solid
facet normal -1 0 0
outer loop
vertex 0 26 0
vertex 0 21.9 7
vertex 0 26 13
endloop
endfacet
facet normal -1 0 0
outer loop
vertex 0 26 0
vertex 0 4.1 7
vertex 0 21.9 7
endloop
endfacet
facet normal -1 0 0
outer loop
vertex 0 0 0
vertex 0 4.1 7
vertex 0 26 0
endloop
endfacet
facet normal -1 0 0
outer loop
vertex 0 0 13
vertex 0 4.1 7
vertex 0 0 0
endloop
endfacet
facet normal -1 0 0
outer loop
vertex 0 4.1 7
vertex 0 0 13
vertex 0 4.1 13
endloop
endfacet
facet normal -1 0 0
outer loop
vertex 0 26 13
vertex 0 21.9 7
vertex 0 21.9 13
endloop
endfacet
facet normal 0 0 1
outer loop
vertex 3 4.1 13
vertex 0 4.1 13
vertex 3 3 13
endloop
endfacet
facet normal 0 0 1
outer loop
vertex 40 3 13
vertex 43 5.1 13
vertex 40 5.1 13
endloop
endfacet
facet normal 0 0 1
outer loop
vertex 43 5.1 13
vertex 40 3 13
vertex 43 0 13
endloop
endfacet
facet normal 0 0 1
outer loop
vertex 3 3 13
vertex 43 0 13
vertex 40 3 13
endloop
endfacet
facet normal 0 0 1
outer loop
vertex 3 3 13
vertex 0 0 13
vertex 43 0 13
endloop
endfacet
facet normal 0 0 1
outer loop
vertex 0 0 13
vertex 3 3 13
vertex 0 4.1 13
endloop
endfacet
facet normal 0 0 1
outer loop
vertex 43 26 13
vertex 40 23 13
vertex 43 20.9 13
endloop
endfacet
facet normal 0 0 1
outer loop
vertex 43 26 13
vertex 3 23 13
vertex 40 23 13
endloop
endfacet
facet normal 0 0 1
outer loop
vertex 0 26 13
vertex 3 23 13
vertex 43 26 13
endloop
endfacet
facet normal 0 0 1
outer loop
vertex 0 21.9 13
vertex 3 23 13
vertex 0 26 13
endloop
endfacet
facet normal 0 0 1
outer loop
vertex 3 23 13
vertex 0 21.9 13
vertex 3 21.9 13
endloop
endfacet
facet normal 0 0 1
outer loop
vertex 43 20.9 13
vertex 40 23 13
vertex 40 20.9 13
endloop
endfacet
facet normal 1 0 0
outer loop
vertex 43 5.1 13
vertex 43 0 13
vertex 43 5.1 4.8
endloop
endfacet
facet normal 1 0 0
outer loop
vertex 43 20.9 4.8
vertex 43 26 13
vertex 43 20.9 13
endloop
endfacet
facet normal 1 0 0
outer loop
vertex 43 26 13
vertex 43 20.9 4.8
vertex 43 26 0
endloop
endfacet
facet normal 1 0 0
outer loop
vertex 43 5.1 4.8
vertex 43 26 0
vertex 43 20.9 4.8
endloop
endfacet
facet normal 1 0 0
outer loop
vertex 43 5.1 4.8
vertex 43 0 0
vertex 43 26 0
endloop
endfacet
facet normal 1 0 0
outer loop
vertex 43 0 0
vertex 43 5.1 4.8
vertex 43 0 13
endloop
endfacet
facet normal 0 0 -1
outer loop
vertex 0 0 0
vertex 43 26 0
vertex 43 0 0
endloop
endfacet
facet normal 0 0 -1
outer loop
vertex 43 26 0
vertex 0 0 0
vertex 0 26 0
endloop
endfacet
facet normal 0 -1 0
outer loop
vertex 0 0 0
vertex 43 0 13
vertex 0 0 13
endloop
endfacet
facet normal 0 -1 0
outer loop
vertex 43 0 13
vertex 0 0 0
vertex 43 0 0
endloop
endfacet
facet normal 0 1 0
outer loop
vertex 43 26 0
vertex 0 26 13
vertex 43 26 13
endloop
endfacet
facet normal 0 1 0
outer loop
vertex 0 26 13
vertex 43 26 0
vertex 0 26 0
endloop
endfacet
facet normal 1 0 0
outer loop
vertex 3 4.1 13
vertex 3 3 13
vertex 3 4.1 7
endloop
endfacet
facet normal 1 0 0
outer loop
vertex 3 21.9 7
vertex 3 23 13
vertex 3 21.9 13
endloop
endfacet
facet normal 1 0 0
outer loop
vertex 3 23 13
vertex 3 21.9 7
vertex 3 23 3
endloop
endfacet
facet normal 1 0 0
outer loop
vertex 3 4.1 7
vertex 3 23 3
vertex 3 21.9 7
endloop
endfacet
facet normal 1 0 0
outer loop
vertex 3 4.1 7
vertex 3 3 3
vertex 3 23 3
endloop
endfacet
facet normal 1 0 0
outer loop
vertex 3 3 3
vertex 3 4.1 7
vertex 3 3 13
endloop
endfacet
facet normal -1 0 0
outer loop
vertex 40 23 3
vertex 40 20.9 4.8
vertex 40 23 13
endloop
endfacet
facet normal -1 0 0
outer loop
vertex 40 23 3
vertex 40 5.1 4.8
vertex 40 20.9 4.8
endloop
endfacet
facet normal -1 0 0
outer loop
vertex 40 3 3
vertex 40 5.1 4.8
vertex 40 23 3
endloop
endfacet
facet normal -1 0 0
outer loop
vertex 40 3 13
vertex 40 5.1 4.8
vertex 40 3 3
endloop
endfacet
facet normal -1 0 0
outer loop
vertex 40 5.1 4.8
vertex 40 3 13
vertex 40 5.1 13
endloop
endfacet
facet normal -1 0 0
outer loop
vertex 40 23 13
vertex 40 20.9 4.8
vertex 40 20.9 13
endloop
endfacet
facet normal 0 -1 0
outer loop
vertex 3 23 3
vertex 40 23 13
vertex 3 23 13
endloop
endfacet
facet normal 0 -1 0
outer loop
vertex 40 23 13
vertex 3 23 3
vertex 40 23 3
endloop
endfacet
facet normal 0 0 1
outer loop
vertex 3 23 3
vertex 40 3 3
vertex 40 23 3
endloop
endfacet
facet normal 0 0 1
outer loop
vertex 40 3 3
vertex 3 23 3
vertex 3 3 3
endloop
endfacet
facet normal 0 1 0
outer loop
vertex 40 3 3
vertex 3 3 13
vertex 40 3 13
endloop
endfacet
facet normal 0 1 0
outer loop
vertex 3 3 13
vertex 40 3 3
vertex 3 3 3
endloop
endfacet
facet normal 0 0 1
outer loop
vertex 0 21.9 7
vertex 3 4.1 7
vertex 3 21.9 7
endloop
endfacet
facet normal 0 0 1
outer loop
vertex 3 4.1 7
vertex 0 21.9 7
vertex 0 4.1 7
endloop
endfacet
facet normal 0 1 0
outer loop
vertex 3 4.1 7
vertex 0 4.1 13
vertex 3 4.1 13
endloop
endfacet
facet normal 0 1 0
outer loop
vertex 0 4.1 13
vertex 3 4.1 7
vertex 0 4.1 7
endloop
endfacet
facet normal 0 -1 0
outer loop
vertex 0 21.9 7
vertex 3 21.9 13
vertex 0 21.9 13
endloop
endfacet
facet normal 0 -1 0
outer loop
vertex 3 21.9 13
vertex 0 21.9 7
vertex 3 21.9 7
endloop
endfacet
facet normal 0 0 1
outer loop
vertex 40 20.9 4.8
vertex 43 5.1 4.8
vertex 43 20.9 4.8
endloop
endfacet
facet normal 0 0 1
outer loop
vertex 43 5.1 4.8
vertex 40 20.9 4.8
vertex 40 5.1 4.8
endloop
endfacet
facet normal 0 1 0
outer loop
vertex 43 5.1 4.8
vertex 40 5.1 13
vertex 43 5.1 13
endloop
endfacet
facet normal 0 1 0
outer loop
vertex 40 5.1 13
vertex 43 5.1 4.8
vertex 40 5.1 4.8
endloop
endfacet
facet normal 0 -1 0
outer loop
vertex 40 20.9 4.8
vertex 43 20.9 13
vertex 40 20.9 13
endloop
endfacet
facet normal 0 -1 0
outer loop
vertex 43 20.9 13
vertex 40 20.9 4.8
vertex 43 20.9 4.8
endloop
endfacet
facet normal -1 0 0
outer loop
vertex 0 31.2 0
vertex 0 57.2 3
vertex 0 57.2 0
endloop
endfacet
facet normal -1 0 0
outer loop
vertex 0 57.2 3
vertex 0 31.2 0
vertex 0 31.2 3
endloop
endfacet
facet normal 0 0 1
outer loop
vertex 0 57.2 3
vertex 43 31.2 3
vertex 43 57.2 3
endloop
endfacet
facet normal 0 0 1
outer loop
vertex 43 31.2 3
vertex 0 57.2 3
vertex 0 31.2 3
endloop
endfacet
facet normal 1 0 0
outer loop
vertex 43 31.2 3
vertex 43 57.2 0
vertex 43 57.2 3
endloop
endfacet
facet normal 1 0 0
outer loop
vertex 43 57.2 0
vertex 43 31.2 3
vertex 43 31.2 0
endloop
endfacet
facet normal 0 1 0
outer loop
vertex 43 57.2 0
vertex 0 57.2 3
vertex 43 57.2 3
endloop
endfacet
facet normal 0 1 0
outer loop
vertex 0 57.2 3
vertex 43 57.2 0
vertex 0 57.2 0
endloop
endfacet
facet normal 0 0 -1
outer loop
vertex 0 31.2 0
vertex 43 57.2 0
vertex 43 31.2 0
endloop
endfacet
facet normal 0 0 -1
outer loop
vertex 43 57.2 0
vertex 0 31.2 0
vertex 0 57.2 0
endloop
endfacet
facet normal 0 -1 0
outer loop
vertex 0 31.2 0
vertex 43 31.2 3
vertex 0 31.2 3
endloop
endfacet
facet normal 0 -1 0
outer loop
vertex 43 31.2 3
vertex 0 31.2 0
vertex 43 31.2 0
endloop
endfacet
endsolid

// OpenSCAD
inner_width = 20;
inner_length = 37;
inner_height = 10;
wall_thickness = 3;
cutout_xt60_width = 15.8;
cutout_xt60_height = 8.2;
cutout_wires_width = 17.8;
cutout_wires_height = 6;

outer_width = inner_width + 2 * wall_thickness;
outer_length = inner_length + 2 * wall_thickness;
outer_height = inner_height + wall_thickness;

difference() {
    cube([outer_length, outer_width, outer_height]);
    translate([wall_thickness, wall_thickness, wall_thickness])
        cube([inner_length, inner_width, inner_height]);
    translate([0, (outer_width - cutout_wires_width) / 2, outer_height - cutout_wires_height])
        cube([wall_thickness, cutout_wires_width, cutout_wires_height]);
    translate([outer_length - wall_thickness, (outer_width - cutout_xt60_width) / 2, outer_height - cutout_xt60_height])
        cube([wall_thickness, cutout_xt60_width, cutout_xt60_height]);
    
}

translate([0, 1.2 * outer_width, 0])
    cube([outer_length, outer_width, wall_thickness]);
